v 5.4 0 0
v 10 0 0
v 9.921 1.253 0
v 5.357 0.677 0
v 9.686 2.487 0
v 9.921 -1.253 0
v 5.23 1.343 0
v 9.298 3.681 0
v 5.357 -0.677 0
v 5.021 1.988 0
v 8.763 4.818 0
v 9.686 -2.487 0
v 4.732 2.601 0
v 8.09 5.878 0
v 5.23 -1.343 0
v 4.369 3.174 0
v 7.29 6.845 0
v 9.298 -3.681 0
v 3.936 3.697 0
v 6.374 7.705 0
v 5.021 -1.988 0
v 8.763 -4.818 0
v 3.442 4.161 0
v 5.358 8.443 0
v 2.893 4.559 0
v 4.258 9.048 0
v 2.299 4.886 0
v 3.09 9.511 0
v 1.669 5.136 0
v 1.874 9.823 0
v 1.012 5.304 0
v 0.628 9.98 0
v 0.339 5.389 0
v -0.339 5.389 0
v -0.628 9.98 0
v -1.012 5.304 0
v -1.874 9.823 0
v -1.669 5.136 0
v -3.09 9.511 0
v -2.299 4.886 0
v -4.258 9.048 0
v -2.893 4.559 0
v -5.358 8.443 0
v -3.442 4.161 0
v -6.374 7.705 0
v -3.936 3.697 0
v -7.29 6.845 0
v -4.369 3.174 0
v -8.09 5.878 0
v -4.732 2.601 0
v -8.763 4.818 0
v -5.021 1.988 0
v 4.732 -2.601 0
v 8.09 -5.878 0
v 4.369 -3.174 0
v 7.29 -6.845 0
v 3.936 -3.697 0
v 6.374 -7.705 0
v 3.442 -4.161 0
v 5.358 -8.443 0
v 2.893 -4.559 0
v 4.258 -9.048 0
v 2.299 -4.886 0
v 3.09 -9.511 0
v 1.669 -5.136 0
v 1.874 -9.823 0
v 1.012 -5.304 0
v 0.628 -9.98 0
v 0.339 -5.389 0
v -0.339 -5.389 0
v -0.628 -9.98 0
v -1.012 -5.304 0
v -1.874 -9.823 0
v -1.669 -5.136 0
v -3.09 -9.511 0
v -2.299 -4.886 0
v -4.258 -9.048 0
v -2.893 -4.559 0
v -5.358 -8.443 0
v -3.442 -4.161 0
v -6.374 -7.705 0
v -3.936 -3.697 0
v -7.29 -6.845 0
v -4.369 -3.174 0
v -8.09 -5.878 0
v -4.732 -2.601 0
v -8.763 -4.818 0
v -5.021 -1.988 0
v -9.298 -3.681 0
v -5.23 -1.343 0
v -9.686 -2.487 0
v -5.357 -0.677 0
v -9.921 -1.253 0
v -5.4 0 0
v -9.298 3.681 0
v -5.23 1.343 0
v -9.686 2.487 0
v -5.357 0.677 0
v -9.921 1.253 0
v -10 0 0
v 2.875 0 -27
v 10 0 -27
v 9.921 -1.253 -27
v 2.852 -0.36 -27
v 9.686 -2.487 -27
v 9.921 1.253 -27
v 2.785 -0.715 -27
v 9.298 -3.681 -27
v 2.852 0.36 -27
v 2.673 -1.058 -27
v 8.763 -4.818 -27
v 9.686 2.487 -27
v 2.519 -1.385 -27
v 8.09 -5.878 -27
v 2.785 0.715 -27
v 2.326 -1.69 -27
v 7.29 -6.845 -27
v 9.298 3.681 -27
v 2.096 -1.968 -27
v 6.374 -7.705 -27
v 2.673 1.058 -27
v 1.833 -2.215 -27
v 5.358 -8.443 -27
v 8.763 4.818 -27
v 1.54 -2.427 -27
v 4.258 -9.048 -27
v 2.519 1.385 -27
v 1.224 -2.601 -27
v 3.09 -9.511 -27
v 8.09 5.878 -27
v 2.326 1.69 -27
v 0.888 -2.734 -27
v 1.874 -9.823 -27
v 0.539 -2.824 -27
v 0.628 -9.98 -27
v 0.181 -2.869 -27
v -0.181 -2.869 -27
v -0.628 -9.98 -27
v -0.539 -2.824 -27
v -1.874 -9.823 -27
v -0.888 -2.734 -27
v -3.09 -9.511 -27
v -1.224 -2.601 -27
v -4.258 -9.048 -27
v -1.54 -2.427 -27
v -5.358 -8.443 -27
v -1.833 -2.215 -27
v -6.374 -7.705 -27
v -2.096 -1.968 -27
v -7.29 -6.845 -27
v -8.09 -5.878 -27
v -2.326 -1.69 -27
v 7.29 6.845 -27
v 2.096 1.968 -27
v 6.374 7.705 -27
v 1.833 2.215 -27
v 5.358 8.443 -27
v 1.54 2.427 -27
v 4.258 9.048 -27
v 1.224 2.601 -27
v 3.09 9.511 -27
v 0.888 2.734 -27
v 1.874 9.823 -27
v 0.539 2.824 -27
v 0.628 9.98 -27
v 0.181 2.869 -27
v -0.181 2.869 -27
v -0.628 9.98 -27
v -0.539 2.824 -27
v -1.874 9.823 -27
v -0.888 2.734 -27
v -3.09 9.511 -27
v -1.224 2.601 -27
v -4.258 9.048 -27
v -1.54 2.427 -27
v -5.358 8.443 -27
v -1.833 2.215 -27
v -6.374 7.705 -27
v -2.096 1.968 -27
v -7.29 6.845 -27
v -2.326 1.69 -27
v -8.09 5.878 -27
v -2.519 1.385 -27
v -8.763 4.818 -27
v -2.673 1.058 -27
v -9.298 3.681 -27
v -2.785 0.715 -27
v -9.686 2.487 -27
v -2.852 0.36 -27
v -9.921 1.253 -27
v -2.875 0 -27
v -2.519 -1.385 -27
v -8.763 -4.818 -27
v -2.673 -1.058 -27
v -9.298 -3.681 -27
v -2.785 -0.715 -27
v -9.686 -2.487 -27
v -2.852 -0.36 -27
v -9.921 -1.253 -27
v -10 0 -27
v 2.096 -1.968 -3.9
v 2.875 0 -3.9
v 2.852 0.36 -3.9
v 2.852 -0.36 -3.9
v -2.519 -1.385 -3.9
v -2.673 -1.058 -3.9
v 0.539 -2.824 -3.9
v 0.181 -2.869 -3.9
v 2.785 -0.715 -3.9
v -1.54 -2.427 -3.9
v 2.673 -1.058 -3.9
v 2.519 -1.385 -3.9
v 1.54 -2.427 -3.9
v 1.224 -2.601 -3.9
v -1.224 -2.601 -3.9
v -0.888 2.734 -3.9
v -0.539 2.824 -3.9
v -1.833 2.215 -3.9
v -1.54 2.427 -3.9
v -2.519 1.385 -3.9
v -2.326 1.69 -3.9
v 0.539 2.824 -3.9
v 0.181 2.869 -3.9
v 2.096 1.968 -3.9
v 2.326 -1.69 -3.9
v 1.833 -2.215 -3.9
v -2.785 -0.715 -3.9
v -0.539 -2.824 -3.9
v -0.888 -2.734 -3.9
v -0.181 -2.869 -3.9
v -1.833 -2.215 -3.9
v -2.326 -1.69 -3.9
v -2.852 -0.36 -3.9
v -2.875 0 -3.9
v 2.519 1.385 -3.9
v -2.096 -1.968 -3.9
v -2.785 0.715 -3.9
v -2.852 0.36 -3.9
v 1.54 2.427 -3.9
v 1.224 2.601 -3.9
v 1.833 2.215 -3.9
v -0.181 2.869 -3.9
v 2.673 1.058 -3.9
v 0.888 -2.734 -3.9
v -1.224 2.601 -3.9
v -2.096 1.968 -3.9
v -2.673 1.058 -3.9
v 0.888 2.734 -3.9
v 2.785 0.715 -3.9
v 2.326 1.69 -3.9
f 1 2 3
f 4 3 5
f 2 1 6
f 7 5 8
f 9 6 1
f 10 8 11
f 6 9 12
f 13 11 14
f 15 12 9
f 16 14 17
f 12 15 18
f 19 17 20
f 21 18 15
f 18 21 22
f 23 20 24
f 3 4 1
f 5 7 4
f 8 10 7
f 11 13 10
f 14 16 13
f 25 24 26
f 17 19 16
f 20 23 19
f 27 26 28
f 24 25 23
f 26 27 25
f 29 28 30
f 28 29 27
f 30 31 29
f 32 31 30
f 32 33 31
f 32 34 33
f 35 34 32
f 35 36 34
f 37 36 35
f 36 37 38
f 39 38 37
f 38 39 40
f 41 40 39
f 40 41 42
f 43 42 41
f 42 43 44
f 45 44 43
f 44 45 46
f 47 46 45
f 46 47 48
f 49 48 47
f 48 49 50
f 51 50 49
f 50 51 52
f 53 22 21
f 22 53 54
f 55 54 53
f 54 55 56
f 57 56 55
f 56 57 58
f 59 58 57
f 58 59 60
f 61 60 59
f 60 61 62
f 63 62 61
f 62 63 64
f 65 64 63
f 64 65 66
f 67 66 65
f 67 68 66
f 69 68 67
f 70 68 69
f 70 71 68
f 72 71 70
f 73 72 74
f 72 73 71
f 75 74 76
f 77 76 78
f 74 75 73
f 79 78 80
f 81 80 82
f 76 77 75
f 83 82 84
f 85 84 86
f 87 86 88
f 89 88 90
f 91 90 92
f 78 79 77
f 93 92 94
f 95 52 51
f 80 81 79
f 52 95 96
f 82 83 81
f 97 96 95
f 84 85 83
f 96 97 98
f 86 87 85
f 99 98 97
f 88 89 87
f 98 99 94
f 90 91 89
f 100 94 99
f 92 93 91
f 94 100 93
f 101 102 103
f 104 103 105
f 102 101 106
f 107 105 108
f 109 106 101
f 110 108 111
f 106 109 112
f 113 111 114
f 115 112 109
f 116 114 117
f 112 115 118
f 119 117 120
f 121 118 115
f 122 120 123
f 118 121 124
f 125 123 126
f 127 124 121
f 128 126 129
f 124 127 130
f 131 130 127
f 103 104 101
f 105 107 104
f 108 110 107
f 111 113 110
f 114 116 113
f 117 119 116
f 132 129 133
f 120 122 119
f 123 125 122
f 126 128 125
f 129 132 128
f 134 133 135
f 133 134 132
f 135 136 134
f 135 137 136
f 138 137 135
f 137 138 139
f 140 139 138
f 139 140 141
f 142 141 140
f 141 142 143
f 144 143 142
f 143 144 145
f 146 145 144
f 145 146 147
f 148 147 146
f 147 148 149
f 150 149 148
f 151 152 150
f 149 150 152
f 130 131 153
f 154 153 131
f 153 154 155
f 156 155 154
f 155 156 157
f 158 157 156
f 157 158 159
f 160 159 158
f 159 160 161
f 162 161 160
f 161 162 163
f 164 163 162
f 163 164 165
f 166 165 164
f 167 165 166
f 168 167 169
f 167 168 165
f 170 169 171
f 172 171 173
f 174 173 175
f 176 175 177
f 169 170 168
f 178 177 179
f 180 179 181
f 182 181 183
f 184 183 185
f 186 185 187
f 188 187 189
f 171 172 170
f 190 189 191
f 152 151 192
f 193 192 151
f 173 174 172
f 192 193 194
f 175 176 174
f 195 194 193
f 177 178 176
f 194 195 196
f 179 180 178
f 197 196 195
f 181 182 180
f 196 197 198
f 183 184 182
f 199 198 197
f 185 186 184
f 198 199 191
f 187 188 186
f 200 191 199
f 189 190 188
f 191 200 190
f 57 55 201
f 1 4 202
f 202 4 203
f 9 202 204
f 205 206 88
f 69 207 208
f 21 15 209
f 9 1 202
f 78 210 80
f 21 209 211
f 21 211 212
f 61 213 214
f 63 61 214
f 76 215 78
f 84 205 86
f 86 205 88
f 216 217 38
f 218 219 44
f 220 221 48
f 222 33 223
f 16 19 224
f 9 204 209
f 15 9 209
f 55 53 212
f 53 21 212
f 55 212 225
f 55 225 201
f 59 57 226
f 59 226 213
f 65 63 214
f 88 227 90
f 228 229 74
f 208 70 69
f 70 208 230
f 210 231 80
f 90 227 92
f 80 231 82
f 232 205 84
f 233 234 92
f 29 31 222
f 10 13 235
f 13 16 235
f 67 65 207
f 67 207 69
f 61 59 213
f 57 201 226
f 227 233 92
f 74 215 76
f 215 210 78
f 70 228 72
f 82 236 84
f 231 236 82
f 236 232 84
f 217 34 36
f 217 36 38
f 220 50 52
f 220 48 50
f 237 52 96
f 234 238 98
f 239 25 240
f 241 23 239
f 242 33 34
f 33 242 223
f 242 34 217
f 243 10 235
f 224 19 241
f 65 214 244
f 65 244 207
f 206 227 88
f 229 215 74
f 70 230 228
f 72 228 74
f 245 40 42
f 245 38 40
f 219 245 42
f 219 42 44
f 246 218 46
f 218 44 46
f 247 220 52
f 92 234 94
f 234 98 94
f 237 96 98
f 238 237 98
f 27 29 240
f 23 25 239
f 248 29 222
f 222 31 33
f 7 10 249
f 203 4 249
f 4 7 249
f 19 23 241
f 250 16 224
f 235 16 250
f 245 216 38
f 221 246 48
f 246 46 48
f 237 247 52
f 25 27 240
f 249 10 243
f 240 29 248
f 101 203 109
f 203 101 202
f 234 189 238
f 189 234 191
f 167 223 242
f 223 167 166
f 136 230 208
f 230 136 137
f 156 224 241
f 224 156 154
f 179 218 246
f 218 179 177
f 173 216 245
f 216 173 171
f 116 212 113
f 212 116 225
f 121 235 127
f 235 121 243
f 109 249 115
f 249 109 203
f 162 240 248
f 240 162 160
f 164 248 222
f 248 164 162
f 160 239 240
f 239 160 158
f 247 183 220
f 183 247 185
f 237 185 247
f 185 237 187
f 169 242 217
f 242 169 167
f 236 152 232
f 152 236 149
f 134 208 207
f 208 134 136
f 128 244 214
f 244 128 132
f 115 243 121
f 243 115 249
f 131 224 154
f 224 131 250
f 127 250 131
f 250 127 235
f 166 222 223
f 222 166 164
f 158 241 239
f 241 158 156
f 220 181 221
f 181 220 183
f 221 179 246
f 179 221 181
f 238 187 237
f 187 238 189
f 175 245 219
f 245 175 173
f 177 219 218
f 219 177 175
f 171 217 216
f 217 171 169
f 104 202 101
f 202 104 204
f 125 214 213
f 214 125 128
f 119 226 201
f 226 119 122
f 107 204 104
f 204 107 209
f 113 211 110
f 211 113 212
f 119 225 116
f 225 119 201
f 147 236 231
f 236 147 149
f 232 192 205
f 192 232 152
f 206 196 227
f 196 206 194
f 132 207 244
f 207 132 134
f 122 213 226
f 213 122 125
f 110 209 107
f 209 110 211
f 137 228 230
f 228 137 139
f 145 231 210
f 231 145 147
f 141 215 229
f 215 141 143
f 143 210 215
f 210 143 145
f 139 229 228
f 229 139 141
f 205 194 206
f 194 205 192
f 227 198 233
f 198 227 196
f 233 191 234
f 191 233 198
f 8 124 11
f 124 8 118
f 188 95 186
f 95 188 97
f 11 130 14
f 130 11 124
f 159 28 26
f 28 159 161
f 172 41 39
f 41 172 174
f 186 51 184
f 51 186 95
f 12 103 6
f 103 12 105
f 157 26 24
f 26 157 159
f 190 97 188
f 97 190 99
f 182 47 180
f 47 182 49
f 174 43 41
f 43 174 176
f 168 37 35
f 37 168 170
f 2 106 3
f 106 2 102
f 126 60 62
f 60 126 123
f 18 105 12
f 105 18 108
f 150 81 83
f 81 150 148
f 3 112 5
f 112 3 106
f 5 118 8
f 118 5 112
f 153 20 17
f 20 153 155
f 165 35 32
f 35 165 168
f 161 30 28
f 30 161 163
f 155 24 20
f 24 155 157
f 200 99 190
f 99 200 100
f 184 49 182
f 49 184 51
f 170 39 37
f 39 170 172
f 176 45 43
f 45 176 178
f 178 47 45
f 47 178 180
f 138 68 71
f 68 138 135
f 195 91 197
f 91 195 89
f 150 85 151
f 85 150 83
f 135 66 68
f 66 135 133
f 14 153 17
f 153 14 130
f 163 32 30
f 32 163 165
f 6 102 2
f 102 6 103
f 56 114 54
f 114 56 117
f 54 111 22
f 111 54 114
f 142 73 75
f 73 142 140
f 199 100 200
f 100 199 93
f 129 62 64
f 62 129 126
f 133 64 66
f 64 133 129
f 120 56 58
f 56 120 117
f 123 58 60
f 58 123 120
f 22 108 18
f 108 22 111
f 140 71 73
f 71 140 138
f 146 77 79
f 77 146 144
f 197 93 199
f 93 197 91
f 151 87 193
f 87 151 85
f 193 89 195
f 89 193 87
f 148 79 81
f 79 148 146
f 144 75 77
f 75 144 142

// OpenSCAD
$fn = 50;


difference() {
	union() {
		translate(v = [0, 0, -27.0000000000]) {
			cylinder(h = 27, r = 10.0000000000);
		}
		cylinder(h = 0, r = 20.0000000000);
	}
	union() {
		translate(v = [0, 0, 0]) {
			rotate(a = [0, 0, 0]) {
				difference() {
					union() {
						#translate(v = [0, 0, -27.0000000000]) {
							cylinder(h = 27, r = 2.6000000000);
						}
						#translate(v = [0, 0, -3.9000000000]) {
							cylinder(h = 3.9000000000, r = 10.0000000000, r1 = 2.8750000000, r2 = 5.4000000000);
						}
						#translate(v = [0, 0, -27.0000000000]) {
							cylinder(h = 27, r = 2.8750000000);
						}
						#translate(v = [0, 0, -27.0000000000]) {
							cylinder(h = 27, r = 2.6000000000);
						}
					}
					union();
				}
			}
		}
	}
}
